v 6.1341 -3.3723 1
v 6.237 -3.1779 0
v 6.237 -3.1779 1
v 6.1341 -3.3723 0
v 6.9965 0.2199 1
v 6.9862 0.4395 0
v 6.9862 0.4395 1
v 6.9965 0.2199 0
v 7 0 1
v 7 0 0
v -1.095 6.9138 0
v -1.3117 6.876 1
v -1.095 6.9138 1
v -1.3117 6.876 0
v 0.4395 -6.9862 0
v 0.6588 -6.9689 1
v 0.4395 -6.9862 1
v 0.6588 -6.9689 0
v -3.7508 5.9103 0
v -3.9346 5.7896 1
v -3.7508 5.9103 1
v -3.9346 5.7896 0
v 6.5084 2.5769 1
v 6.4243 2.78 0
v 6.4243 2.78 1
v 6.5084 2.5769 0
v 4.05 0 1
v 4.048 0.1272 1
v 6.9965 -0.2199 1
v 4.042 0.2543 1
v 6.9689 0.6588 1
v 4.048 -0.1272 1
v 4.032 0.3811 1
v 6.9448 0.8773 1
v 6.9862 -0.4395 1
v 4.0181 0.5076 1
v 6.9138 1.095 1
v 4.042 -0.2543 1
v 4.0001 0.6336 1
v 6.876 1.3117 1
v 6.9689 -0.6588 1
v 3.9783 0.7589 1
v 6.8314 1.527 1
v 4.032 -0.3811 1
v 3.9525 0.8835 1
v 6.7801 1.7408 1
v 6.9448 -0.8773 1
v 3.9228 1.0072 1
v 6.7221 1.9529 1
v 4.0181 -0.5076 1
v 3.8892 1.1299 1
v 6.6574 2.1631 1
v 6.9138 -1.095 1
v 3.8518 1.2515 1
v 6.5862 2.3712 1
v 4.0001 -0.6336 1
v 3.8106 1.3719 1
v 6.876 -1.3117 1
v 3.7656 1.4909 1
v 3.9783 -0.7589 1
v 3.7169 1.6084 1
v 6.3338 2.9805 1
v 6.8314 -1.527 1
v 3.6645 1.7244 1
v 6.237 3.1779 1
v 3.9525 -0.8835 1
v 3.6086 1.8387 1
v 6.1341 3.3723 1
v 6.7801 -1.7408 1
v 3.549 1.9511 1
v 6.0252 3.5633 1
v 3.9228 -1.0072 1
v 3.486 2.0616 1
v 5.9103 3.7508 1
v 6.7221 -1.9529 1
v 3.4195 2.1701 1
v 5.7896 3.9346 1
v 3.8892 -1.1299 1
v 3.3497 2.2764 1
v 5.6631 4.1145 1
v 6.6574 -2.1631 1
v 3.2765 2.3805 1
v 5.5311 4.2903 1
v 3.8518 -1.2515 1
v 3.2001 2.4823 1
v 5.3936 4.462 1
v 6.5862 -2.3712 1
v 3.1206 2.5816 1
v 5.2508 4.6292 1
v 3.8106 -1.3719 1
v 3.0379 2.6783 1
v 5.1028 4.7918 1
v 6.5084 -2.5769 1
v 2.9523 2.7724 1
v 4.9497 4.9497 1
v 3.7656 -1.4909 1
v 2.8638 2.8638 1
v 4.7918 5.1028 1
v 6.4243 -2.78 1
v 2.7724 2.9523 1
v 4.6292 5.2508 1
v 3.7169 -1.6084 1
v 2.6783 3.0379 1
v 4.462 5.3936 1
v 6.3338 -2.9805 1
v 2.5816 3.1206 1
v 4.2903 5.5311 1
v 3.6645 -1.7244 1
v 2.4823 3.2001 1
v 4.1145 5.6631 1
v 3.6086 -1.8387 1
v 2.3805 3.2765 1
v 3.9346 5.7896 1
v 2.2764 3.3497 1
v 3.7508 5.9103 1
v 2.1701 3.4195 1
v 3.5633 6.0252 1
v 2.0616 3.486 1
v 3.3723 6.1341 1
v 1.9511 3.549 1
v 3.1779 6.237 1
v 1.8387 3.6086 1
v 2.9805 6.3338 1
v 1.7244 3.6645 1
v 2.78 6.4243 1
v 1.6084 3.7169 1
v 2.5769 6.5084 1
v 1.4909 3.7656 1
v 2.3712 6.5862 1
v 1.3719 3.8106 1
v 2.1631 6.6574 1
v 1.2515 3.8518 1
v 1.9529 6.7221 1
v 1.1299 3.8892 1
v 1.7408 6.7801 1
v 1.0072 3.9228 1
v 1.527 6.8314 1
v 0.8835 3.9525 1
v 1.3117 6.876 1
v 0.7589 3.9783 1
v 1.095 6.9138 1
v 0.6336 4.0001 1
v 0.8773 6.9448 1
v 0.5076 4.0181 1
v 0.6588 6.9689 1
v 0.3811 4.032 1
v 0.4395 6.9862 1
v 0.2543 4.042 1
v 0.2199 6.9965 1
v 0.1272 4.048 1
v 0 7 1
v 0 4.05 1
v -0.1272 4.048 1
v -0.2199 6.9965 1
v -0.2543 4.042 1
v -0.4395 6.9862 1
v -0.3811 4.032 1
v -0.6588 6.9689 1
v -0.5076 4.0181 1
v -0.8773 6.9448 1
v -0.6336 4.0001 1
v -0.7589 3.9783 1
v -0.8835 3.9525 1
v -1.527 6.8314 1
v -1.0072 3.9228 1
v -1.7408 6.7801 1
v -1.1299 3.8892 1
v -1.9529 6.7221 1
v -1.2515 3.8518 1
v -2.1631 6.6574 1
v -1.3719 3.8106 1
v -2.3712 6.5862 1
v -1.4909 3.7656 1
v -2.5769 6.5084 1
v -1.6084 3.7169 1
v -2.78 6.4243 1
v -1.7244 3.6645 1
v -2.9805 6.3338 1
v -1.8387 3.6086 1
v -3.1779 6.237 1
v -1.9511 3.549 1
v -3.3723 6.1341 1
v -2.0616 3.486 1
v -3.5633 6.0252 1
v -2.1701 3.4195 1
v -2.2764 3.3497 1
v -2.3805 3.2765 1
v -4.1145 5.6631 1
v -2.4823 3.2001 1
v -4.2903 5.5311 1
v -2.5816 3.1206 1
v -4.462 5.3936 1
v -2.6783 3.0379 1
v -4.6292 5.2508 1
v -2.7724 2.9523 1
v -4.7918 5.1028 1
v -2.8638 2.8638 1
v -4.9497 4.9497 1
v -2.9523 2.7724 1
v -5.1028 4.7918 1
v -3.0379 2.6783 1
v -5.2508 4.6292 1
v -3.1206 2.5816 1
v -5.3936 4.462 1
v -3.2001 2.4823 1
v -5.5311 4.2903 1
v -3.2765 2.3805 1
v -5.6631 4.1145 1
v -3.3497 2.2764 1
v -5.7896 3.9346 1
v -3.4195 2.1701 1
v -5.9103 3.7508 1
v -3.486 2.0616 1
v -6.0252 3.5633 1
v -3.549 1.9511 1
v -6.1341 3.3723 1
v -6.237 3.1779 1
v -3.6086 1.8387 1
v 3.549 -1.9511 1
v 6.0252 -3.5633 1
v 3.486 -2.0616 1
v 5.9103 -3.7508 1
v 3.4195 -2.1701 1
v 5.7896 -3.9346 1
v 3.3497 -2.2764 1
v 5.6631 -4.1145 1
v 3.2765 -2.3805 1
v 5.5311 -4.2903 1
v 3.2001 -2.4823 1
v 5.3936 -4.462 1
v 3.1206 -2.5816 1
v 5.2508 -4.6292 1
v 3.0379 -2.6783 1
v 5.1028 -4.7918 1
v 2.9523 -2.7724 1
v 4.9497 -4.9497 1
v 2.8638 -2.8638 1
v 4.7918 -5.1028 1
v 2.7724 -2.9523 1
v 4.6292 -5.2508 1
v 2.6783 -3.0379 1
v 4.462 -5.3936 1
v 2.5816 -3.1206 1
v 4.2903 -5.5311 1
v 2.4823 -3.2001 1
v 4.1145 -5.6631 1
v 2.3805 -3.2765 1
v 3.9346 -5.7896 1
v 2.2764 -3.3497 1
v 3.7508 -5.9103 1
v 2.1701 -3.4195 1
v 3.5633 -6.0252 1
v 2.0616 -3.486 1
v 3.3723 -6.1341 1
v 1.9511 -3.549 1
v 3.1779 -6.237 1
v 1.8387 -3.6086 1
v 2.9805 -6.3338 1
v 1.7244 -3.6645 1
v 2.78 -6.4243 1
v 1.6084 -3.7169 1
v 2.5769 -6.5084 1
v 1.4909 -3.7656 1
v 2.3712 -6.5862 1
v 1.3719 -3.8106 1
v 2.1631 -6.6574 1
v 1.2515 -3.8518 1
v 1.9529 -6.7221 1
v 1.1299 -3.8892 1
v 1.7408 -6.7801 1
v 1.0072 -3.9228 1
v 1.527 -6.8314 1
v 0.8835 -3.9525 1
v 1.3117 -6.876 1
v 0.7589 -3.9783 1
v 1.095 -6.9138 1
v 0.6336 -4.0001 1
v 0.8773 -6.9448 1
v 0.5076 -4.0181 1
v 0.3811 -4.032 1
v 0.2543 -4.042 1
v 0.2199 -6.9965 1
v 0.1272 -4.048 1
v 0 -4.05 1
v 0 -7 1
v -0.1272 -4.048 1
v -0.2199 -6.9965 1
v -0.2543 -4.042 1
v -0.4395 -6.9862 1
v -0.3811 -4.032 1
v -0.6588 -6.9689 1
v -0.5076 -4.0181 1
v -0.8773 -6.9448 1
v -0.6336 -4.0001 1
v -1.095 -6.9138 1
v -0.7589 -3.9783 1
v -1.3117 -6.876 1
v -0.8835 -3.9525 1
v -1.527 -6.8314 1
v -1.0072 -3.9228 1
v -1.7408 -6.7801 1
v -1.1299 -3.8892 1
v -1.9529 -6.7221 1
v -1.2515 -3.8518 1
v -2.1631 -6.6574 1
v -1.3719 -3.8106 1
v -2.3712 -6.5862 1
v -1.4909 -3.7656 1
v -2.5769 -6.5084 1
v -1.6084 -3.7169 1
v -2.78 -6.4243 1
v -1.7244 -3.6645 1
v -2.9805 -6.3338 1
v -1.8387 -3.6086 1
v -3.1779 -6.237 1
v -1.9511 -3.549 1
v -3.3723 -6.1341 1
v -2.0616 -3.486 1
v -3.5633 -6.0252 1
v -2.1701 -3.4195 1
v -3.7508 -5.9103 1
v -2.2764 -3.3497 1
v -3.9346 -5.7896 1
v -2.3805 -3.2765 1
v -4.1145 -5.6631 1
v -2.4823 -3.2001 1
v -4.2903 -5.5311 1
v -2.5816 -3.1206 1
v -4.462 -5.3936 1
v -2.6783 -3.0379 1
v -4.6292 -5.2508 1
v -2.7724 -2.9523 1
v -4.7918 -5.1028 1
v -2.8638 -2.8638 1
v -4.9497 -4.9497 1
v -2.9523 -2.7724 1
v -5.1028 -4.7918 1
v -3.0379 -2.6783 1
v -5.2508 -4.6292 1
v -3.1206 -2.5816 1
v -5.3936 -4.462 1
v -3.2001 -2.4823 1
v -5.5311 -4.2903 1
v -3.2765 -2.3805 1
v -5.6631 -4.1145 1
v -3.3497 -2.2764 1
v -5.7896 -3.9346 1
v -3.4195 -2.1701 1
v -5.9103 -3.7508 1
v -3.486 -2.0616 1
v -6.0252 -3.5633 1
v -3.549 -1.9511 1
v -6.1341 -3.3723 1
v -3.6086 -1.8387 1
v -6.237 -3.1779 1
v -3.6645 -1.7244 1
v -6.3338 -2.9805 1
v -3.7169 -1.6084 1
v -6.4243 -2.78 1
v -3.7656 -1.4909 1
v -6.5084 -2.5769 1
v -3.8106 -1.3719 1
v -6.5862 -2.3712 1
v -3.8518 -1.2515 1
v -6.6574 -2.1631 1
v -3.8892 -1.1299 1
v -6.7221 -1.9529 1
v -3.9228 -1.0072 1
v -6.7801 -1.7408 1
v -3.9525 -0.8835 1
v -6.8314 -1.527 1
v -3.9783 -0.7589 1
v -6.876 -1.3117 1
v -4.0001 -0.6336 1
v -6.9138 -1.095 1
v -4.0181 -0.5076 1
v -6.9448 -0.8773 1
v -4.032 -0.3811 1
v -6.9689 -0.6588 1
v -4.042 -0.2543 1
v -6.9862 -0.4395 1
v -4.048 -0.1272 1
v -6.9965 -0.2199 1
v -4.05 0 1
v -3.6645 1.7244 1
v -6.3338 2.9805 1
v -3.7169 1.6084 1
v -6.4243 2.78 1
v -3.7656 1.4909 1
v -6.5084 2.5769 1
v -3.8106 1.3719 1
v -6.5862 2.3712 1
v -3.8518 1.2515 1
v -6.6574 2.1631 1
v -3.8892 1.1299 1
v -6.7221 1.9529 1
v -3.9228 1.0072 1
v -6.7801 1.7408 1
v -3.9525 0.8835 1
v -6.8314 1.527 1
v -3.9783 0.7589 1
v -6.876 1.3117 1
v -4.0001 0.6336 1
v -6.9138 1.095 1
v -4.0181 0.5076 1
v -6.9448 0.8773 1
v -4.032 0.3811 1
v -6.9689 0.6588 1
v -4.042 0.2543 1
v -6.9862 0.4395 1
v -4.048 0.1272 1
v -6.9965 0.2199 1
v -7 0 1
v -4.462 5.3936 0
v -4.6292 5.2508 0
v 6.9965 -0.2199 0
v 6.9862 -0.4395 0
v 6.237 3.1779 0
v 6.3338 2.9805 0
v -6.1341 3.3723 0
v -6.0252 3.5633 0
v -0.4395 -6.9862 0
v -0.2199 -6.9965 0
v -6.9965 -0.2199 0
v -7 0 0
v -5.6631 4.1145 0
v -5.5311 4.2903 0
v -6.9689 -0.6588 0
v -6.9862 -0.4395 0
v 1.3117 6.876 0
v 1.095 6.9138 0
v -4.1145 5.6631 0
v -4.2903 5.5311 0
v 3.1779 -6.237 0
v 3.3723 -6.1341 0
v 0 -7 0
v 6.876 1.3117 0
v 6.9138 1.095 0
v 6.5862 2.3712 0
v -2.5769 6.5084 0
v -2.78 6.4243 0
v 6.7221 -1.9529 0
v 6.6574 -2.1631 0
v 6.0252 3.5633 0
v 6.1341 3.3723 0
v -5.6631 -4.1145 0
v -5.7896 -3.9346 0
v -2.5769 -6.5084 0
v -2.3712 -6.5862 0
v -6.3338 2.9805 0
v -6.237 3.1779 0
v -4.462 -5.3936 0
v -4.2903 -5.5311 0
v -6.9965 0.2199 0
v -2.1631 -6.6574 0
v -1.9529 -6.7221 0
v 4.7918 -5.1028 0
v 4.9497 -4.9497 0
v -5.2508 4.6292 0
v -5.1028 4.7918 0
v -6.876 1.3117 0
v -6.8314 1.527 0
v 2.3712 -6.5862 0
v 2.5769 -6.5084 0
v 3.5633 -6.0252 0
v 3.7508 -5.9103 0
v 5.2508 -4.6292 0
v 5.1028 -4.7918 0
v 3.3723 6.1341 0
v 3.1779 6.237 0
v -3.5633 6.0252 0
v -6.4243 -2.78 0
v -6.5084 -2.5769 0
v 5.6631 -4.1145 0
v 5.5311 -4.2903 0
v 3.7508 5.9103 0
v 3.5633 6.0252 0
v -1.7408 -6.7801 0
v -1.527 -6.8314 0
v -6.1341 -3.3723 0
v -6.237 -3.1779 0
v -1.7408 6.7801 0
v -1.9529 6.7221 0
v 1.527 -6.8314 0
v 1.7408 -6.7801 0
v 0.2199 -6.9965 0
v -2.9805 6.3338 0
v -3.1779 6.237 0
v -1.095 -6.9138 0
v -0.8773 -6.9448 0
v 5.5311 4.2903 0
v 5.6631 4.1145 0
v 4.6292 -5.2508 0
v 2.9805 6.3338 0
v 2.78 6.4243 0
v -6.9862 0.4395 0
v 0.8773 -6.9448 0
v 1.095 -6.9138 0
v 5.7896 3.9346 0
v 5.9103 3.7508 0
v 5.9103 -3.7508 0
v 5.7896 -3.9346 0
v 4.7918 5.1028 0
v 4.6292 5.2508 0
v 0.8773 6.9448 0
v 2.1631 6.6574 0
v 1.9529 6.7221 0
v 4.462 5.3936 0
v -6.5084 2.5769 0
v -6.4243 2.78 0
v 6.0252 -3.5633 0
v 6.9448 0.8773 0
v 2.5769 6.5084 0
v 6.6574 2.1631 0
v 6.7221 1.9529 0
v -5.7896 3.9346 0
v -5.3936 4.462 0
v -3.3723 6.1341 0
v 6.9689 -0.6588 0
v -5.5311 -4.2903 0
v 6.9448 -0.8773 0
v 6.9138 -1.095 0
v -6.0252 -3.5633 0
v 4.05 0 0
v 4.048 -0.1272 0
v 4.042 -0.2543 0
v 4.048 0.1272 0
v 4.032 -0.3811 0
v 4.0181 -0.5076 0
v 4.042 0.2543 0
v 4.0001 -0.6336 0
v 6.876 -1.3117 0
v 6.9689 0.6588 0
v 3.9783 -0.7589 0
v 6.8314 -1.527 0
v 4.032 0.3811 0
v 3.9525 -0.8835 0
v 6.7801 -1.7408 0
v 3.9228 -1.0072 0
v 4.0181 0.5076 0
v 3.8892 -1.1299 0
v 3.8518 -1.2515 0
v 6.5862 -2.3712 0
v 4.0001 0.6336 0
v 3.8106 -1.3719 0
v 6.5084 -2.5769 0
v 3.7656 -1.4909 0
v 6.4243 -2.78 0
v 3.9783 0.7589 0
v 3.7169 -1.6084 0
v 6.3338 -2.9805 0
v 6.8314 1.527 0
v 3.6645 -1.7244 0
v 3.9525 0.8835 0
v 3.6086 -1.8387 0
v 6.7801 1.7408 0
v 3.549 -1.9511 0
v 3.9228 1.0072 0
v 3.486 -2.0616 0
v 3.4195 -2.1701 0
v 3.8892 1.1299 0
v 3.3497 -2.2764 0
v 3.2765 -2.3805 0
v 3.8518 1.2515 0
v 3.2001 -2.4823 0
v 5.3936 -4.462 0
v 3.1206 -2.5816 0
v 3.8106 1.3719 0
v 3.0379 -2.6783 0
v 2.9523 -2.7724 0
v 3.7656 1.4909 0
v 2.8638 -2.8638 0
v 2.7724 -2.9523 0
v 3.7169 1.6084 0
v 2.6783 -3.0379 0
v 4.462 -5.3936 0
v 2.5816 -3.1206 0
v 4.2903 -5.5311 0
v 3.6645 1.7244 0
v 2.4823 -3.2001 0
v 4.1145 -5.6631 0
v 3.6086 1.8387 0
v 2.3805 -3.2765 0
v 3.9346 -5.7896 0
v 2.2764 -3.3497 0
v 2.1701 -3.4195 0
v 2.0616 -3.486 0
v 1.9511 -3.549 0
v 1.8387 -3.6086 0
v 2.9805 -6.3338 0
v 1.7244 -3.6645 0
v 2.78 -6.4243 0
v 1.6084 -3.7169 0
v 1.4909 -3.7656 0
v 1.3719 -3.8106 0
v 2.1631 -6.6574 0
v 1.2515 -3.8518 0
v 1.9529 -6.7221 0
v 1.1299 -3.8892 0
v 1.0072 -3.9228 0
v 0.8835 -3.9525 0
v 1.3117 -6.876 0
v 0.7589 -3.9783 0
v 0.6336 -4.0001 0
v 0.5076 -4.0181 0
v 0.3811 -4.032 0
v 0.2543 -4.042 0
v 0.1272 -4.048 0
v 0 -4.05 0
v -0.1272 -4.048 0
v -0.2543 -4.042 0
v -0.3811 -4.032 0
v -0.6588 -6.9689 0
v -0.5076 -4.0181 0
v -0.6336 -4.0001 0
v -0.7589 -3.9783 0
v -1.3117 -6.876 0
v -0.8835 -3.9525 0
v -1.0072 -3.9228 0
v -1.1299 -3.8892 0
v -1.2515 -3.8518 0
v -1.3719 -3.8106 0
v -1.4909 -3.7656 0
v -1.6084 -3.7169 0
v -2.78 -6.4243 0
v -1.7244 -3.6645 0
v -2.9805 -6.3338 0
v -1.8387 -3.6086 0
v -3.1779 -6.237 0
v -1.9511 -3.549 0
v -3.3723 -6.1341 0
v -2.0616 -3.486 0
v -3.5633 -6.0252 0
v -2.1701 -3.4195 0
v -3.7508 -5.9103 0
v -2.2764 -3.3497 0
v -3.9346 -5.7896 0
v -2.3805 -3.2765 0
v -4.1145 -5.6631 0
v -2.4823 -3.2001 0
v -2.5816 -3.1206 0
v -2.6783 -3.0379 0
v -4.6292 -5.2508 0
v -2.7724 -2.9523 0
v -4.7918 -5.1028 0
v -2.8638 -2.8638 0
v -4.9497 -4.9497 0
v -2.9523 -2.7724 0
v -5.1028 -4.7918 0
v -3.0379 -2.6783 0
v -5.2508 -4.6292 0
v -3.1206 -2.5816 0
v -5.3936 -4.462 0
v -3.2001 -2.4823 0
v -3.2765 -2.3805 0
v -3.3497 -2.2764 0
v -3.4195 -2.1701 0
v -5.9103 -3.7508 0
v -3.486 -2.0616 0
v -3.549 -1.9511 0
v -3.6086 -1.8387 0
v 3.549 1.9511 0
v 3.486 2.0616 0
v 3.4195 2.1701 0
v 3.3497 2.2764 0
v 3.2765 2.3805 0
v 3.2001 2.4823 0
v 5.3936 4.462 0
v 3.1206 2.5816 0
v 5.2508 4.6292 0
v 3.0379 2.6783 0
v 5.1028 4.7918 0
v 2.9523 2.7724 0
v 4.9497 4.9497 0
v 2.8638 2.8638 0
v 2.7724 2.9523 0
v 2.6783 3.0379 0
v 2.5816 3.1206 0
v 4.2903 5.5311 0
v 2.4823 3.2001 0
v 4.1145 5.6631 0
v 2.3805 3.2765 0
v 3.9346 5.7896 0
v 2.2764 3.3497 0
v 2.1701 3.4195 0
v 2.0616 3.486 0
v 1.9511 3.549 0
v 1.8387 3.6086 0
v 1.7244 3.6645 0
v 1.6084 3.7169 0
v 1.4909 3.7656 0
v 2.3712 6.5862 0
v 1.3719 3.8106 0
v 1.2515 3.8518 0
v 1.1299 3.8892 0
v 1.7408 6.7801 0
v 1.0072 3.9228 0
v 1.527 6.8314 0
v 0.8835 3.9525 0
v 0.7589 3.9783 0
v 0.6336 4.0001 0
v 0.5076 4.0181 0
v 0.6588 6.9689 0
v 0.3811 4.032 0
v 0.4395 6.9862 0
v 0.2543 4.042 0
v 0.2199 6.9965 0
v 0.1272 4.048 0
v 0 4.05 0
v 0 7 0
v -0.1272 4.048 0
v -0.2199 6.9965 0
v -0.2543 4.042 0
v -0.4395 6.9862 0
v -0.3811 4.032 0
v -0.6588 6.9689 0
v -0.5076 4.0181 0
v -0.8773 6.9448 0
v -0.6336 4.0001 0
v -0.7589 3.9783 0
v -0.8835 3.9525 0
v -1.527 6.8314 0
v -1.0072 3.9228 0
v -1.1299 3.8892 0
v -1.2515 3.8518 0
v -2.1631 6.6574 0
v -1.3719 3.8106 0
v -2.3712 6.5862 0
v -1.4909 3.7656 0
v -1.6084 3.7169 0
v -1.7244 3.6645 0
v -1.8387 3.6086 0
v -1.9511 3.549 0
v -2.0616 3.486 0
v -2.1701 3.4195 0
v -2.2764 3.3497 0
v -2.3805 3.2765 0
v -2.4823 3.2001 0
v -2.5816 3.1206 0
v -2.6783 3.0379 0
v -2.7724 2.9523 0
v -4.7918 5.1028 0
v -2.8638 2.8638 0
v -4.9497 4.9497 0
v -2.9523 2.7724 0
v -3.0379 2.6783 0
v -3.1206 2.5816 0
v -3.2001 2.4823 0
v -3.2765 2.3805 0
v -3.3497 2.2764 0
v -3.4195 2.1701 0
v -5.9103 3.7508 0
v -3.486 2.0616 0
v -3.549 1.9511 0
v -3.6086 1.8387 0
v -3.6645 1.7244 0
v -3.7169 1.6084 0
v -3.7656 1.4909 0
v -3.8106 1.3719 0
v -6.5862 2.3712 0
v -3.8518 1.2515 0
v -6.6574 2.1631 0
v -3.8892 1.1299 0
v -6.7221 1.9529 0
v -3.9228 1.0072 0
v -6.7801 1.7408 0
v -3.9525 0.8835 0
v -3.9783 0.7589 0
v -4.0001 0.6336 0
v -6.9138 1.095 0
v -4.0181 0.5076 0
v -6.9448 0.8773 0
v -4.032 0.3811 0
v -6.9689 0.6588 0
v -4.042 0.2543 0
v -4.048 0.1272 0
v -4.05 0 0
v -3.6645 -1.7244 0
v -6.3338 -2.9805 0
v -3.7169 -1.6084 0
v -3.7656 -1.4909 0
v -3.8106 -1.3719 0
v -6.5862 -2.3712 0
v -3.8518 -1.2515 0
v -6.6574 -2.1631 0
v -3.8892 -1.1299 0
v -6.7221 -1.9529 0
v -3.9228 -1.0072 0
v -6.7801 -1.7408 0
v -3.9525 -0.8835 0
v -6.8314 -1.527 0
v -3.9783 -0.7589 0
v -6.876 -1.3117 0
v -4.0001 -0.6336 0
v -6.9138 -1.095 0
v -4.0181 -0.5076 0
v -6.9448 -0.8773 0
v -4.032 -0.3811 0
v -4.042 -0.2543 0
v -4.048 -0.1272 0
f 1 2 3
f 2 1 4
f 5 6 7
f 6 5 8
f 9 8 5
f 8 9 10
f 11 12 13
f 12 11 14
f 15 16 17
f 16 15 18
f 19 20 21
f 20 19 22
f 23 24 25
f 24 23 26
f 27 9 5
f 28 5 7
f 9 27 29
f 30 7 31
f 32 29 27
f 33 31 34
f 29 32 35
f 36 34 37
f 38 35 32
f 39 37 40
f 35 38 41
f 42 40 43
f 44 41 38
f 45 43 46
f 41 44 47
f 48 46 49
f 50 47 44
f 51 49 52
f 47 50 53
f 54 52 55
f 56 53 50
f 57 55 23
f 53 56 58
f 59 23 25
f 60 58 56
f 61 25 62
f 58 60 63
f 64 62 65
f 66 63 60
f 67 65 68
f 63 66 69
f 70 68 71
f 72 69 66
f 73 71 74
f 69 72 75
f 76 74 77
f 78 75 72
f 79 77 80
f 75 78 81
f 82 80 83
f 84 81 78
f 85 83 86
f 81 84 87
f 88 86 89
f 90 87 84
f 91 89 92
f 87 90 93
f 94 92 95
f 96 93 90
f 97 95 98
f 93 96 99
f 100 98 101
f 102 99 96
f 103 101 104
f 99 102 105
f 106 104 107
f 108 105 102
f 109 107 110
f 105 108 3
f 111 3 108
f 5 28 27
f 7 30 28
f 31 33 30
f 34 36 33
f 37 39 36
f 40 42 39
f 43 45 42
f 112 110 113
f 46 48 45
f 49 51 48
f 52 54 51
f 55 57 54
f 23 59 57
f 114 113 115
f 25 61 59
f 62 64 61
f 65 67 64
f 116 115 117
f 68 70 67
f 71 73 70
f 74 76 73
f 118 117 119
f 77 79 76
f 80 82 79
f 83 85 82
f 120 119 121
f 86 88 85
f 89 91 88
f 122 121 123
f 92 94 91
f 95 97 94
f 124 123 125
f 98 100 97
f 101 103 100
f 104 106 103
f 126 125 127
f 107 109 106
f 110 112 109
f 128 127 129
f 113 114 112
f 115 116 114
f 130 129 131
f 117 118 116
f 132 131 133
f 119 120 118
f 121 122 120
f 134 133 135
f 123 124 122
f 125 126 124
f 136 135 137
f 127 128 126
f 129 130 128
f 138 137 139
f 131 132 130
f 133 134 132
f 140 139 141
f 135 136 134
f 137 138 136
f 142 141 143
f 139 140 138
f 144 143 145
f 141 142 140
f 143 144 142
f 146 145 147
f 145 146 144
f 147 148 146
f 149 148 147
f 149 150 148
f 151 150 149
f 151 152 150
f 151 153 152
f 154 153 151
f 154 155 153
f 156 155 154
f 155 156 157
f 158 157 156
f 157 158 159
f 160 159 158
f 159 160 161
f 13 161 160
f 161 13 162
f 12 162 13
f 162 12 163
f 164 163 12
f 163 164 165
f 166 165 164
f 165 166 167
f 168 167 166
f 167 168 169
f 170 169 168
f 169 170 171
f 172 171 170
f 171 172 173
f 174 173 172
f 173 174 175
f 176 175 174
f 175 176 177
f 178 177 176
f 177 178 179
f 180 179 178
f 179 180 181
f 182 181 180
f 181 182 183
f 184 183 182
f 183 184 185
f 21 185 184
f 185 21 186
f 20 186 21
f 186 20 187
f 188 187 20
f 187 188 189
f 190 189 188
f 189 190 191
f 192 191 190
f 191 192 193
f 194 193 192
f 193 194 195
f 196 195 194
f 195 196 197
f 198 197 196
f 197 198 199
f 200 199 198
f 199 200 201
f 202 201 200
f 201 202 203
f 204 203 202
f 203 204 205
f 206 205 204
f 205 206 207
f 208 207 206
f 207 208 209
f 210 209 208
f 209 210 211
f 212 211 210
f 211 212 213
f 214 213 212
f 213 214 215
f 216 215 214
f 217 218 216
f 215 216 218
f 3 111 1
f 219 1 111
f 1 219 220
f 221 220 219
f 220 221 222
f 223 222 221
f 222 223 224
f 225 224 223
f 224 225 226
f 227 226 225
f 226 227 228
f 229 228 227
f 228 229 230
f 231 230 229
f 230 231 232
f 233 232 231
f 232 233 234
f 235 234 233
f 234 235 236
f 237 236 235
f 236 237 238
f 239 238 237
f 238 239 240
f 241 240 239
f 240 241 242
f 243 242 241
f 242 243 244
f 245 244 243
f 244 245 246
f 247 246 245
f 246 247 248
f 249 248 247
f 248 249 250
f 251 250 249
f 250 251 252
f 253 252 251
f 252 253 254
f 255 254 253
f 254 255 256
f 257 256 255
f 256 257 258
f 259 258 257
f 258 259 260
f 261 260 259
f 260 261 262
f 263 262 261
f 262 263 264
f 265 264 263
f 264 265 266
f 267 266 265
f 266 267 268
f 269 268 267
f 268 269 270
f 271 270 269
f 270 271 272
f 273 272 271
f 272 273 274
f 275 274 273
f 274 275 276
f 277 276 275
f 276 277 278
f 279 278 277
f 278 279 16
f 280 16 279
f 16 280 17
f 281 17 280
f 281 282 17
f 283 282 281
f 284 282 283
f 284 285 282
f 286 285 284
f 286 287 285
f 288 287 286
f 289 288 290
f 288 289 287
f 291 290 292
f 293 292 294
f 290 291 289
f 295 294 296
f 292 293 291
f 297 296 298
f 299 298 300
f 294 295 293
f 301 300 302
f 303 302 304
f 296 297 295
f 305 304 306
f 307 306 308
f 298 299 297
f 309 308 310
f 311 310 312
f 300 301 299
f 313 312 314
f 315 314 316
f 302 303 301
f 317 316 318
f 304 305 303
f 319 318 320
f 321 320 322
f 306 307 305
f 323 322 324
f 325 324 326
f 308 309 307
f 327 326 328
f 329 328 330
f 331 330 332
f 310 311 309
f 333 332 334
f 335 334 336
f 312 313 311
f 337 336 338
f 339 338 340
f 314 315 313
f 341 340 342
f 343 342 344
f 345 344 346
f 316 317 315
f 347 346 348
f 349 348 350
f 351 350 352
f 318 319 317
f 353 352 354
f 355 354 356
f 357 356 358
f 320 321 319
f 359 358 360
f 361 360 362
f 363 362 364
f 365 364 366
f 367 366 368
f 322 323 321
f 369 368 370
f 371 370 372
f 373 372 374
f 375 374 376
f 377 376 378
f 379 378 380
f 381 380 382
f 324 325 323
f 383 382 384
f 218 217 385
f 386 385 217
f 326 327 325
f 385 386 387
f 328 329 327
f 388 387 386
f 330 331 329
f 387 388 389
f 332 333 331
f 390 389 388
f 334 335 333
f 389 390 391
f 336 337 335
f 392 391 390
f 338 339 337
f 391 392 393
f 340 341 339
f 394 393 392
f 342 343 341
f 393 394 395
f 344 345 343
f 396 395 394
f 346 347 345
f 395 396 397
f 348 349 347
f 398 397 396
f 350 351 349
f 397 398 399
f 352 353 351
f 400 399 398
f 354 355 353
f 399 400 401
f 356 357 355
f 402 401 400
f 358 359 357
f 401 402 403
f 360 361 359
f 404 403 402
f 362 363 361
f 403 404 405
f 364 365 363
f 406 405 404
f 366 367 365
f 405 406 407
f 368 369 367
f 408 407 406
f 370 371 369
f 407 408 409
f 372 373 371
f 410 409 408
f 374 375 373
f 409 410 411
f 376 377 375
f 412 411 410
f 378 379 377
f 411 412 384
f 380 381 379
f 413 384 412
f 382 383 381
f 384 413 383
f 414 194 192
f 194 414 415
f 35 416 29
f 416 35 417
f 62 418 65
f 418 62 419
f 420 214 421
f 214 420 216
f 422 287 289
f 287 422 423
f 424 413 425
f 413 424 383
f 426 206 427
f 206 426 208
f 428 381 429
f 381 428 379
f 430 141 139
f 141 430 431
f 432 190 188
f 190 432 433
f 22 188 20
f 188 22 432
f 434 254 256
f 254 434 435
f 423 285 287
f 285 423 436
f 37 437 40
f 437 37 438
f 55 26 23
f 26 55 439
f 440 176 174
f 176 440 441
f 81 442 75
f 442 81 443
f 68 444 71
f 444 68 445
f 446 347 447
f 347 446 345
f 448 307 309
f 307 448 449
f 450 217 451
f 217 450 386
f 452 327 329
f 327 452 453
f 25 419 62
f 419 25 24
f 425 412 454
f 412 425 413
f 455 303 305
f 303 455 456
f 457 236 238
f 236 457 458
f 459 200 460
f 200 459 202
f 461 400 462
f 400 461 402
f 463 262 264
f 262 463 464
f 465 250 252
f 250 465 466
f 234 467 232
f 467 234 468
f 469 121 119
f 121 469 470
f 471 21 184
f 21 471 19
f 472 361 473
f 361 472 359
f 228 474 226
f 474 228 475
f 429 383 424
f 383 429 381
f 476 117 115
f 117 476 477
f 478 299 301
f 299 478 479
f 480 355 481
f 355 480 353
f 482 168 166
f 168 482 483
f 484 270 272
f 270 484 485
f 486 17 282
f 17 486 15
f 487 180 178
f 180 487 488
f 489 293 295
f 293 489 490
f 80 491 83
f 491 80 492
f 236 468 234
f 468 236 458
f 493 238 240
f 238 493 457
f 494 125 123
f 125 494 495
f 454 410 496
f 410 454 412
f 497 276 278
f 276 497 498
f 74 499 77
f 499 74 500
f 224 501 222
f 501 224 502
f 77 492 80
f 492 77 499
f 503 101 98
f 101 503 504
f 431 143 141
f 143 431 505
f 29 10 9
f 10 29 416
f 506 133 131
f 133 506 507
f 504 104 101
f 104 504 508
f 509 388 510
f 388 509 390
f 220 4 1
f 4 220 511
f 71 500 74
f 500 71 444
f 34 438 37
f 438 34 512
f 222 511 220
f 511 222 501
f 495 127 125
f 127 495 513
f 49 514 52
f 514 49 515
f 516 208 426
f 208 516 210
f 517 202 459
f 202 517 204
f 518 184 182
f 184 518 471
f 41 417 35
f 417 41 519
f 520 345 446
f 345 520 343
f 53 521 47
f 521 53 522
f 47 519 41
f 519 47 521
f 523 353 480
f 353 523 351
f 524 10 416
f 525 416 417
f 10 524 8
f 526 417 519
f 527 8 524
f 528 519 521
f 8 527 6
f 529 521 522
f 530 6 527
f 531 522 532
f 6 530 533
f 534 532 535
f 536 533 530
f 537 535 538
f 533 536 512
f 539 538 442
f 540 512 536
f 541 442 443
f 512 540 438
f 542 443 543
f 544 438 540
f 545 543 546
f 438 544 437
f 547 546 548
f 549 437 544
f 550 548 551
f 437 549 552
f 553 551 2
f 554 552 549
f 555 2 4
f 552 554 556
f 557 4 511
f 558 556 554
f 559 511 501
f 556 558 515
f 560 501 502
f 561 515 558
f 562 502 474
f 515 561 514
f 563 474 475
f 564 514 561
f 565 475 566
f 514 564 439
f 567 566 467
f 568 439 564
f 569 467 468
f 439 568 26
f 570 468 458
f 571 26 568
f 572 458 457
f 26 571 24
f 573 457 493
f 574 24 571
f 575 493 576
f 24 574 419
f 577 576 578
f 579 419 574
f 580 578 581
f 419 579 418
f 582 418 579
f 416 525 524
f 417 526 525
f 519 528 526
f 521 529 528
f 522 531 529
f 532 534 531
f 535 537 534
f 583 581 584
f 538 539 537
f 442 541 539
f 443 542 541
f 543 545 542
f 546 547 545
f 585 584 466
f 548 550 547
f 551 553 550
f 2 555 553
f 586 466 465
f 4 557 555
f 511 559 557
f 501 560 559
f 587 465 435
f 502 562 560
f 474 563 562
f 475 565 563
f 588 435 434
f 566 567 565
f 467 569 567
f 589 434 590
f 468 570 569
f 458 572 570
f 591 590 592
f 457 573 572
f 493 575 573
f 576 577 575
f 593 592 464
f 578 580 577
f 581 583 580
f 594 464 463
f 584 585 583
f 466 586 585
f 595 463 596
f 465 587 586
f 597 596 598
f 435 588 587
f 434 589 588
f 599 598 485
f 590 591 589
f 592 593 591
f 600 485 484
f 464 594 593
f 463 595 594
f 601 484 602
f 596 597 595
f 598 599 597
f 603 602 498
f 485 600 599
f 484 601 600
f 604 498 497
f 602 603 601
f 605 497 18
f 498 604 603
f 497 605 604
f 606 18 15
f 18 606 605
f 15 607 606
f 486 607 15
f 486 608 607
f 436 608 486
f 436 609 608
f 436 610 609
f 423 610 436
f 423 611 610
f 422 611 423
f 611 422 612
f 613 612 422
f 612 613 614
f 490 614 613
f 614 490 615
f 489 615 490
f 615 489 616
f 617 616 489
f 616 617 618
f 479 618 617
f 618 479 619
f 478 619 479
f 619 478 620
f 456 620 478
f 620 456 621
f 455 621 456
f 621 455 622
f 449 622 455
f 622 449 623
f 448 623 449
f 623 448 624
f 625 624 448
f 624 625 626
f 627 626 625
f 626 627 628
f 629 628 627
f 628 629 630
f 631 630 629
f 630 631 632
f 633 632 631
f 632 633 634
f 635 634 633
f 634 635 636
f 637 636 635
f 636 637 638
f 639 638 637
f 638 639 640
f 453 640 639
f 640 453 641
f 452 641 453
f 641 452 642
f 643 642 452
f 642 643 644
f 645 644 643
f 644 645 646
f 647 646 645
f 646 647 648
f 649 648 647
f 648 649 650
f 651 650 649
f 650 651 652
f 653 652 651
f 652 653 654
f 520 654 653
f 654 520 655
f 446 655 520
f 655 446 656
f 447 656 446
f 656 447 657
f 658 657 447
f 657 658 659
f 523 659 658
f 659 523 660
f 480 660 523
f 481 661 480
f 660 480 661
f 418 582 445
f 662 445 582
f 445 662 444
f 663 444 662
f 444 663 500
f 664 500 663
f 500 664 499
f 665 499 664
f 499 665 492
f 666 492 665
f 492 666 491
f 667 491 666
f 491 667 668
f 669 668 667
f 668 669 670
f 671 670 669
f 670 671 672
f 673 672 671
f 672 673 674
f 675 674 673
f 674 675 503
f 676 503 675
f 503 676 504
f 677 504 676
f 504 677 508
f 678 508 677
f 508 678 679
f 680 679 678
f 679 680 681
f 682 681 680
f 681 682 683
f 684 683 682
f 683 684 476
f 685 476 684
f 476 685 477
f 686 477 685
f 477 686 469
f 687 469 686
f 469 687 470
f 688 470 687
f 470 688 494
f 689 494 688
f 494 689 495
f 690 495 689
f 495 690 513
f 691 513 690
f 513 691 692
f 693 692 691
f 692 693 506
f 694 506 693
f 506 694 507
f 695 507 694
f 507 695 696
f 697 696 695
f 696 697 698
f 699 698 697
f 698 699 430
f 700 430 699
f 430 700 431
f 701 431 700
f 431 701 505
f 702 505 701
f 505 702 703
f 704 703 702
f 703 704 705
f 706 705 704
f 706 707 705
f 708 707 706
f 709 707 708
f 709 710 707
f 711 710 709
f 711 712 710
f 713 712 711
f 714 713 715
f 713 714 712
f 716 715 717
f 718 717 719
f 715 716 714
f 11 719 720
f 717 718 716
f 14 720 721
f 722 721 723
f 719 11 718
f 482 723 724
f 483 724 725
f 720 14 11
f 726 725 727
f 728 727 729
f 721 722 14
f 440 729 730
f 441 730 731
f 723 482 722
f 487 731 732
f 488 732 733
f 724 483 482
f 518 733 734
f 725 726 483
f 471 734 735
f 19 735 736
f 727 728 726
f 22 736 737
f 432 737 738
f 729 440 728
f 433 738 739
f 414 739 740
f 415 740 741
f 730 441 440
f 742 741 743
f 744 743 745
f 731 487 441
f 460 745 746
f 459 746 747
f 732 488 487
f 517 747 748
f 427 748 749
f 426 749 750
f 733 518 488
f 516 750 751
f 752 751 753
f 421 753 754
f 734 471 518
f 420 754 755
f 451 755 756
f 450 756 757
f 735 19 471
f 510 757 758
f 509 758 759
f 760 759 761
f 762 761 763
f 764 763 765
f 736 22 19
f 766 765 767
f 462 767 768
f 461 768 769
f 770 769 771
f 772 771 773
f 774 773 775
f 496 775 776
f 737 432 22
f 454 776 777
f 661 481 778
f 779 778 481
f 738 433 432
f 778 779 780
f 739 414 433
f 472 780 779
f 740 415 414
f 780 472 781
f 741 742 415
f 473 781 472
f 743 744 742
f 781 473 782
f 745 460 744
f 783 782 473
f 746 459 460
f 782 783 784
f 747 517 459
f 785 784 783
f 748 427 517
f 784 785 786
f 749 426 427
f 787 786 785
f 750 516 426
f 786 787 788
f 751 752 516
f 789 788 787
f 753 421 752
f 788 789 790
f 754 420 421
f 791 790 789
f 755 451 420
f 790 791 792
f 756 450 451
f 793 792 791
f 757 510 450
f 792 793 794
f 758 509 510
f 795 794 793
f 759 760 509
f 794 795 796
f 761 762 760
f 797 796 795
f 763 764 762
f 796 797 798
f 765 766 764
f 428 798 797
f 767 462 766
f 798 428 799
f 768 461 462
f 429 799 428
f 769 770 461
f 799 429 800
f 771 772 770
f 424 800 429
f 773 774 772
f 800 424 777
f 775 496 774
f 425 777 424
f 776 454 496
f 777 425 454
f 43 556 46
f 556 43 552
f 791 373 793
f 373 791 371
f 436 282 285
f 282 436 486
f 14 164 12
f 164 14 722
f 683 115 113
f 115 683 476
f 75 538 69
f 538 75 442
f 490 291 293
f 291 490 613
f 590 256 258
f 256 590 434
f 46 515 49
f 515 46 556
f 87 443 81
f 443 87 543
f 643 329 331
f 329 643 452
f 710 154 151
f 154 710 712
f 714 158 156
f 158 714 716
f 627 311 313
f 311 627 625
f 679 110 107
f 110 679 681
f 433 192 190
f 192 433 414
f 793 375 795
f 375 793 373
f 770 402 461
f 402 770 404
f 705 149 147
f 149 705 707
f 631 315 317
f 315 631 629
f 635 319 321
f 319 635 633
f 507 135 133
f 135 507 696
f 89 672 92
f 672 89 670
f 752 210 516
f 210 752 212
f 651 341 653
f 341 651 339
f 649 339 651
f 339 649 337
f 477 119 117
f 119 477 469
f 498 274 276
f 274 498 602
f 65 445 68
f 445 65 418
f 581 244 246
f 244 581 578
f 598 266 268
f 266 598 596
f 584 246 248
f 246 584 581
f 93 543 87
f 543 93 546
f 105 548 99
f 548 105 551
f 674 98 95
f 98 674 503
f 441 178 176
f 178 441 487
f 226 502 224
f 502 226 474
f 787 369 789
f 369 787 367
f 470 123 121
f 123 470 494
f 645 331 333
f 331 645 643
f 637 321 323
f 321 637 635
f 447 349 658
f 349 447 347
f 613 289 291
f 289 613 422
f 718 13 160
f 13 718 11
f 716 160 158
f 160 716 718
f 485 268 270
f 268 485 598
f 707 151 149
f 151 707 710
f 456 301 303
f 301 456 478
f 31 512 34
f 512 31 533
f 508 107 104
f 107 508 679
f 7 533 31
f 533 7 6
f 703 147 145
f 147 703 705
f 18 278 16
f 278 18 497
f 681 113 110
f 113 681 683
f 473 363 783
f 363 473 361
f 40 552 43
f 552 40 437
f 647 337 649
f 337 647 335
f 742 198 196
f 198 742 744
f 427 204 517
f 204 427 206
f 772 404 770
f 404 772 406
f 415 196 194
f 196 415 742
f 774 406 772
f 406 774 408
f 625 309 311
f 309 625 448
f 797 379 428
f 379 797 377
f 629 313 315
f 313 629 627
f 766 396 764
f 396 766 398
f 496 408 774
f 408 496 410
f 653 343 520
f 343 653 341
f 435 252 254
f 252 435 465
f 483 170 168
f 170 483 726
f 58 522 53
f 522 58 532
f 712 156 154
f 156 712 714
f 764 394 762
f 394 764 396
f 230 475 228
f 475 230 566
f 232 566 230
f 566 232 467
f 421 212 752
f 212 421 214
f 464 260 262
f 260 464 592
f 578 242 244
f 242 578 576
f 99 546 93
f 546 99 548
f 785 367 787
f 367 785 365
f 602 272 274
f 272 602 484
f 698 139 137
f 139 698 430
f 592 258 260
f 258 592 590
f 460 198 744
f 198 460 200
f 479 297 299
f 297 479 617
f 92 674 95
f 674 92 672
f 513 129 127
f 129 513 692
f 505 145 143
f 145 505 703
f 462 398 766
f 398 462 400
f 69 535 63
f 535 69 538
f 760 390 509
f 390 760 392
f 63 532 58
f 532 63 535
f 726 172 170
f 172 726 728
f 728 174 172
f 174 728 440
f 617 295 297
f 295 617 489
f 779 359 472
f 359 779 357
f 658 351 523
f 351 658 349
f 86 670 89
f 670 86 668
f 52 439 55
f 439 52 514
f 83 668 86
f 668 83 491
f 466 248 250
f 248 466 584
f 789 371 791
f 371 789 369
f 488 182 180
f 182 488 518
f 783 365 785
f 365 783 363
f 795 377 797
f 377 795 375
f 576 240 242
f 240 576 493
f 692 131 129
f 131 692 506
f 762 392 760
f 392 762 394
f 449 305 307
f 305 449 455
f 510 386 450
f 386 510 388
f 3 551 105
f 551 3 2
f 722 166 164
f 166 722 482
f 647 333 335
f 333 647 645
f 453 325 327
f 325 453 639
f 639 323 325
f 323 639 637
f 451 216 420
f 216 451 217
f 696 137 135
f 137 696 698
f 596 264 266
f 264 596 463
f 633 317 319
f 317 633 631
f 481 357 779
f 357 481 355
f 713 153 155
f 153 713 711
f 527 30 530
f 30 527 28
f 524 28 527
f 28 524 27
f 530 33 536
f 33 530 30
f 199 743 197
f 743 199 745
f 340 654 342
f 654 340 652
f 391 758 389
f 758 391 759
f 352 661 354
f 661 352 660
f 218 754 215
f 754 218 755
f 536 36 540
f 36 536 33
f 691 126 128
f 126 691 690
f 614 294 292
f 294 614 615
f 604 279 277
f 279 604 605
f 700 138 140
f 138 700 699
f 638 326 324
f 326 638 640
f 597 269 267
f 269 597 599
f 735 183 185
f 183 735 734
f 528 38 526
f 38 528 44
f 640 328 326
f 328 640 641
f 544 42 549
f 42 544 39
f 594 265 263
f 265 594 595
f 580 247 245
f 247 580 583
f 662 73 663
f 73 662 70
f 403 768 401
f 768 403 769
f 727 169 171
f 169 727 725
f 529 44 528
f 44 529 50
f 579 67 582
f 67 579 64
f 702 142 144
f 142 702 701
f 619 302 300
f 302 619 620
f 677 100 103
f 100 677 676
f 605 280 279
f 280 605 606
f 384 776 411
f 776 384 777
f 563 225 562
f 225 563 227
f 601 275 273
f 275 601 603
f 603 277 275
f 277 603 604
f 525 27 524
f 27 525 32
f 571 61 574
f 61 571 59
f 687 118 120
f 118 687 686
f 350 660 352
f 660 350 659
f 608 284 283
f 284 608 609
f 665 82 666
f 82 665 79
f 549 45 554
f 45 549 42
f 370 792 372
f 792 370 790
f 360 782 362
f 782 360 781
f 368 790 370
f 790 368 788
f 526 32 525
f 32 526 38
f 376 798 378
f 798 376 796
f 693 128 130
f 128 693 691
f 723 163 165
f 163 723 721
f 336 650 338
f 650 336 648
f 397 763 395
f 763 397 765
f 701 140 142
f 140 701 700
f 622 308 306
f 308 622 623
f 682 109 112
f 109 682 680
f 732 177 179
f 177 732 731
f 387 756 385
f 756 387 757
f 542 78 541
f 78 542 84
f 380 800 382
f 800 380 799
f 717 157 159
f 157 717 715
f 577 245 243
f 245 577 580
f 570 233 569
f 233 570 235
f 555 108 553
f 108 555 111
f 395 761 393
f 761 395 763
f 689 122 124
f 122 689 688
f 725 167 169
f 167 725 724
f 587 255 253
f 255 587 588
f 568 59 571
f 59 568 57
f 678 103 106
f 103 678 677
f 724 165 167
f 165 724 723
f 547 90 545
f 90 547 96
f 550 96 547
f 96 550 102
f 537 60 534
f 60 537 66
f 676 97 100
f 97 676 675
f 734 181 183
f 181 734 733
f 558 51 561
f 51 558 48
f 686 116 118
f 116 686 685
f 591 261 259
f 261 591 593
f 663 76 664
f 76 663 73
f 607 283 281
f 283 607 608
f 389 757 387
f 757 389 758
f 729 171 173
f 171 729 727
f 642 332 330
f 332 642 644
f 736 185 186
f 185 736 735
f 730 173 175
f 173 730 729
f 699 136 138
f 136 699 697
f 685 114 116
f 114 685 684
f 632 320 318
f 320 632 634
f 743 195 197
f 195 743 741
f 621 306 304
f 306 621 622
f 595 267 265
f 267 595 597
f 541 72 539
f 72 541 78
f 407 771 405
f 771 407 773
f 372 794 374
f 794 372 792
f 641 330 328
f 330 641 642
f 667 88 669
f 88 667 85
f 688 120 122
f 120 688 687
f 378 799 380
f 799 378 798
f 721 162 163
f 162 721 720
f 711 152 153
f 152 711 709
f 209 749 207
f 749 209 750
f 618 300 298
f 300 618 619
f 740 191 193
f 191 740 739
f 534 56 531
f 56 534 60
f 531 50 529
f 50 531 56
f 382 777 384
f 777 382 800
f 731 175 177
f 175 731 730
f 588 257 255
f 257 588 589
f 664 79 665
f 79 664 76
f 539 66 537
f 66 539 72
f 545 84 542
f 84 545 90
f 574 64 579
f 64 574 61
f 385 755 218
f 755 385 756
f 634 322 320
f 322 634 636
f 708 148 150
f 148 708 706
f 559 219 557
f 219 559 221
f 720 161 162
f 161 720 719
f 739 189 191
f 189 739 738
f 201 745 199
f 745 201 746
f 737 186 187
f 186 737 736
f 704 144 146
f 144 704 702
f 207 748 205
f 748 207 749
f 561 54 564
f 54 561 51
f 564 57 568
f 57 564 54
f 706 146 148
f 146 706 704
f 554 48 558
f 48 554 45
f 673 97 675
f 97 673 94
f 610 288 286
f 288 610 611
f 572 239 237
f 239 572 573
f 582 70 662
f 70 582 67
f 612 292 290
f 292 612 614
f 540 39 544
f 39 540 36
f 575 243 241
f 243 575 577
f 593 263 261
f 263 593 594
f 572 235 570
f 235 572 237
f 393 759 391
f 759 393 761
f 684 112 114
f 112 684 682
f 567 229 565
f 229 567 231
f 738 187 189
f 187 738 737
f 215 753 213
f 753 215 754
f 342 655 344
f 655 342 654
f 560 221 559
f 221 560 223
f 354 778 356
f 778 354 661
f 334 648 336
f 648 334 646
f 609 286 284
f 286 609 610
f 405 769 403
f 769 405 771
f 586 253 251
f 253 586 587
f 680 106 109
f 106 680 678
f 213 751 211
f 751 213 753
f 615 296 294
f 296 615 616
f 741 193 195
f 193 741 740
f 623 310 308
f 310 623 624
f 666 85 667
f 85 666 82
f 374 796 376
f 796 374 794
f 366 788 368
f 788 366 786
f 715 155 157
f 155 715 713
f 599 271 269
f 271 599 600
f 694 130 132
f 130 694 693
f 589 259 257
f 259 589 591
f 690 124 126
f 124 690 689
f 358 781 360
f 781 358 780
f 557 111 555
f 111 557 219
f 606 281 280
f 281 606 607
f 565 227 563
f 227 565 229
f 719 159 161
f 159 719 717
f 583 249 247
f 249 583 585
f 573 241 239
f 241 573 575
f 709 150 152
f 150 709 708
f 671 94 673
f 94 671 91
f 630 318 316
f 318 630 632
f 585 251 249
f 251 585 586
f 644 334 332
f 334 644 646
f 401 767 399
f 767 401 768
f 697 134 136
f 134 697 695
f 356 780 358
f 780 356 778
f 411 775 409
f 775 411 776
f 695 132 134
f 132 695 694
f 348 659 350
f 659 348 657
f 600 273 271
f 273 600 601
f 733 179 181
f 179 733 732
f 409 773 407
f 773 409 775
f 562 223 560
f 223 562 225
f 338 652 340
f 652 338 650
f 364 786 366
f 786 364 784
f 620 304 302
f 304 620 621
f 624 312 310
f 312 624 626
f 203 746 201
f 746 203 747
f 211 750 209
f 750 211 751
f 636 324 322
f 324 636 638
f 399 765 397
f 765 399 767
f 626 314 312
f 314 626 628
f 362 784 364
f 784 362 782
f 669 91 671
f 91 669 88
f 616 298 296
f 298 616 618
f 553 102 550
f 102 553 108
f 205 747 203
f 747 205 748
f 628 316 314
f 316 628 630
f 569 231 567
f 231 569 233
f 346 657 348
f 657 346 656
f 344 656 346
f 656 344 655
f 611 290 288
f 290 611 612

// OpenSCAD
difference() {
cylinder(h=1, d=14,$fn=200);
translate([0,0,-2])cylinder(h=5, d=8.1,$fn=200);
    
}
